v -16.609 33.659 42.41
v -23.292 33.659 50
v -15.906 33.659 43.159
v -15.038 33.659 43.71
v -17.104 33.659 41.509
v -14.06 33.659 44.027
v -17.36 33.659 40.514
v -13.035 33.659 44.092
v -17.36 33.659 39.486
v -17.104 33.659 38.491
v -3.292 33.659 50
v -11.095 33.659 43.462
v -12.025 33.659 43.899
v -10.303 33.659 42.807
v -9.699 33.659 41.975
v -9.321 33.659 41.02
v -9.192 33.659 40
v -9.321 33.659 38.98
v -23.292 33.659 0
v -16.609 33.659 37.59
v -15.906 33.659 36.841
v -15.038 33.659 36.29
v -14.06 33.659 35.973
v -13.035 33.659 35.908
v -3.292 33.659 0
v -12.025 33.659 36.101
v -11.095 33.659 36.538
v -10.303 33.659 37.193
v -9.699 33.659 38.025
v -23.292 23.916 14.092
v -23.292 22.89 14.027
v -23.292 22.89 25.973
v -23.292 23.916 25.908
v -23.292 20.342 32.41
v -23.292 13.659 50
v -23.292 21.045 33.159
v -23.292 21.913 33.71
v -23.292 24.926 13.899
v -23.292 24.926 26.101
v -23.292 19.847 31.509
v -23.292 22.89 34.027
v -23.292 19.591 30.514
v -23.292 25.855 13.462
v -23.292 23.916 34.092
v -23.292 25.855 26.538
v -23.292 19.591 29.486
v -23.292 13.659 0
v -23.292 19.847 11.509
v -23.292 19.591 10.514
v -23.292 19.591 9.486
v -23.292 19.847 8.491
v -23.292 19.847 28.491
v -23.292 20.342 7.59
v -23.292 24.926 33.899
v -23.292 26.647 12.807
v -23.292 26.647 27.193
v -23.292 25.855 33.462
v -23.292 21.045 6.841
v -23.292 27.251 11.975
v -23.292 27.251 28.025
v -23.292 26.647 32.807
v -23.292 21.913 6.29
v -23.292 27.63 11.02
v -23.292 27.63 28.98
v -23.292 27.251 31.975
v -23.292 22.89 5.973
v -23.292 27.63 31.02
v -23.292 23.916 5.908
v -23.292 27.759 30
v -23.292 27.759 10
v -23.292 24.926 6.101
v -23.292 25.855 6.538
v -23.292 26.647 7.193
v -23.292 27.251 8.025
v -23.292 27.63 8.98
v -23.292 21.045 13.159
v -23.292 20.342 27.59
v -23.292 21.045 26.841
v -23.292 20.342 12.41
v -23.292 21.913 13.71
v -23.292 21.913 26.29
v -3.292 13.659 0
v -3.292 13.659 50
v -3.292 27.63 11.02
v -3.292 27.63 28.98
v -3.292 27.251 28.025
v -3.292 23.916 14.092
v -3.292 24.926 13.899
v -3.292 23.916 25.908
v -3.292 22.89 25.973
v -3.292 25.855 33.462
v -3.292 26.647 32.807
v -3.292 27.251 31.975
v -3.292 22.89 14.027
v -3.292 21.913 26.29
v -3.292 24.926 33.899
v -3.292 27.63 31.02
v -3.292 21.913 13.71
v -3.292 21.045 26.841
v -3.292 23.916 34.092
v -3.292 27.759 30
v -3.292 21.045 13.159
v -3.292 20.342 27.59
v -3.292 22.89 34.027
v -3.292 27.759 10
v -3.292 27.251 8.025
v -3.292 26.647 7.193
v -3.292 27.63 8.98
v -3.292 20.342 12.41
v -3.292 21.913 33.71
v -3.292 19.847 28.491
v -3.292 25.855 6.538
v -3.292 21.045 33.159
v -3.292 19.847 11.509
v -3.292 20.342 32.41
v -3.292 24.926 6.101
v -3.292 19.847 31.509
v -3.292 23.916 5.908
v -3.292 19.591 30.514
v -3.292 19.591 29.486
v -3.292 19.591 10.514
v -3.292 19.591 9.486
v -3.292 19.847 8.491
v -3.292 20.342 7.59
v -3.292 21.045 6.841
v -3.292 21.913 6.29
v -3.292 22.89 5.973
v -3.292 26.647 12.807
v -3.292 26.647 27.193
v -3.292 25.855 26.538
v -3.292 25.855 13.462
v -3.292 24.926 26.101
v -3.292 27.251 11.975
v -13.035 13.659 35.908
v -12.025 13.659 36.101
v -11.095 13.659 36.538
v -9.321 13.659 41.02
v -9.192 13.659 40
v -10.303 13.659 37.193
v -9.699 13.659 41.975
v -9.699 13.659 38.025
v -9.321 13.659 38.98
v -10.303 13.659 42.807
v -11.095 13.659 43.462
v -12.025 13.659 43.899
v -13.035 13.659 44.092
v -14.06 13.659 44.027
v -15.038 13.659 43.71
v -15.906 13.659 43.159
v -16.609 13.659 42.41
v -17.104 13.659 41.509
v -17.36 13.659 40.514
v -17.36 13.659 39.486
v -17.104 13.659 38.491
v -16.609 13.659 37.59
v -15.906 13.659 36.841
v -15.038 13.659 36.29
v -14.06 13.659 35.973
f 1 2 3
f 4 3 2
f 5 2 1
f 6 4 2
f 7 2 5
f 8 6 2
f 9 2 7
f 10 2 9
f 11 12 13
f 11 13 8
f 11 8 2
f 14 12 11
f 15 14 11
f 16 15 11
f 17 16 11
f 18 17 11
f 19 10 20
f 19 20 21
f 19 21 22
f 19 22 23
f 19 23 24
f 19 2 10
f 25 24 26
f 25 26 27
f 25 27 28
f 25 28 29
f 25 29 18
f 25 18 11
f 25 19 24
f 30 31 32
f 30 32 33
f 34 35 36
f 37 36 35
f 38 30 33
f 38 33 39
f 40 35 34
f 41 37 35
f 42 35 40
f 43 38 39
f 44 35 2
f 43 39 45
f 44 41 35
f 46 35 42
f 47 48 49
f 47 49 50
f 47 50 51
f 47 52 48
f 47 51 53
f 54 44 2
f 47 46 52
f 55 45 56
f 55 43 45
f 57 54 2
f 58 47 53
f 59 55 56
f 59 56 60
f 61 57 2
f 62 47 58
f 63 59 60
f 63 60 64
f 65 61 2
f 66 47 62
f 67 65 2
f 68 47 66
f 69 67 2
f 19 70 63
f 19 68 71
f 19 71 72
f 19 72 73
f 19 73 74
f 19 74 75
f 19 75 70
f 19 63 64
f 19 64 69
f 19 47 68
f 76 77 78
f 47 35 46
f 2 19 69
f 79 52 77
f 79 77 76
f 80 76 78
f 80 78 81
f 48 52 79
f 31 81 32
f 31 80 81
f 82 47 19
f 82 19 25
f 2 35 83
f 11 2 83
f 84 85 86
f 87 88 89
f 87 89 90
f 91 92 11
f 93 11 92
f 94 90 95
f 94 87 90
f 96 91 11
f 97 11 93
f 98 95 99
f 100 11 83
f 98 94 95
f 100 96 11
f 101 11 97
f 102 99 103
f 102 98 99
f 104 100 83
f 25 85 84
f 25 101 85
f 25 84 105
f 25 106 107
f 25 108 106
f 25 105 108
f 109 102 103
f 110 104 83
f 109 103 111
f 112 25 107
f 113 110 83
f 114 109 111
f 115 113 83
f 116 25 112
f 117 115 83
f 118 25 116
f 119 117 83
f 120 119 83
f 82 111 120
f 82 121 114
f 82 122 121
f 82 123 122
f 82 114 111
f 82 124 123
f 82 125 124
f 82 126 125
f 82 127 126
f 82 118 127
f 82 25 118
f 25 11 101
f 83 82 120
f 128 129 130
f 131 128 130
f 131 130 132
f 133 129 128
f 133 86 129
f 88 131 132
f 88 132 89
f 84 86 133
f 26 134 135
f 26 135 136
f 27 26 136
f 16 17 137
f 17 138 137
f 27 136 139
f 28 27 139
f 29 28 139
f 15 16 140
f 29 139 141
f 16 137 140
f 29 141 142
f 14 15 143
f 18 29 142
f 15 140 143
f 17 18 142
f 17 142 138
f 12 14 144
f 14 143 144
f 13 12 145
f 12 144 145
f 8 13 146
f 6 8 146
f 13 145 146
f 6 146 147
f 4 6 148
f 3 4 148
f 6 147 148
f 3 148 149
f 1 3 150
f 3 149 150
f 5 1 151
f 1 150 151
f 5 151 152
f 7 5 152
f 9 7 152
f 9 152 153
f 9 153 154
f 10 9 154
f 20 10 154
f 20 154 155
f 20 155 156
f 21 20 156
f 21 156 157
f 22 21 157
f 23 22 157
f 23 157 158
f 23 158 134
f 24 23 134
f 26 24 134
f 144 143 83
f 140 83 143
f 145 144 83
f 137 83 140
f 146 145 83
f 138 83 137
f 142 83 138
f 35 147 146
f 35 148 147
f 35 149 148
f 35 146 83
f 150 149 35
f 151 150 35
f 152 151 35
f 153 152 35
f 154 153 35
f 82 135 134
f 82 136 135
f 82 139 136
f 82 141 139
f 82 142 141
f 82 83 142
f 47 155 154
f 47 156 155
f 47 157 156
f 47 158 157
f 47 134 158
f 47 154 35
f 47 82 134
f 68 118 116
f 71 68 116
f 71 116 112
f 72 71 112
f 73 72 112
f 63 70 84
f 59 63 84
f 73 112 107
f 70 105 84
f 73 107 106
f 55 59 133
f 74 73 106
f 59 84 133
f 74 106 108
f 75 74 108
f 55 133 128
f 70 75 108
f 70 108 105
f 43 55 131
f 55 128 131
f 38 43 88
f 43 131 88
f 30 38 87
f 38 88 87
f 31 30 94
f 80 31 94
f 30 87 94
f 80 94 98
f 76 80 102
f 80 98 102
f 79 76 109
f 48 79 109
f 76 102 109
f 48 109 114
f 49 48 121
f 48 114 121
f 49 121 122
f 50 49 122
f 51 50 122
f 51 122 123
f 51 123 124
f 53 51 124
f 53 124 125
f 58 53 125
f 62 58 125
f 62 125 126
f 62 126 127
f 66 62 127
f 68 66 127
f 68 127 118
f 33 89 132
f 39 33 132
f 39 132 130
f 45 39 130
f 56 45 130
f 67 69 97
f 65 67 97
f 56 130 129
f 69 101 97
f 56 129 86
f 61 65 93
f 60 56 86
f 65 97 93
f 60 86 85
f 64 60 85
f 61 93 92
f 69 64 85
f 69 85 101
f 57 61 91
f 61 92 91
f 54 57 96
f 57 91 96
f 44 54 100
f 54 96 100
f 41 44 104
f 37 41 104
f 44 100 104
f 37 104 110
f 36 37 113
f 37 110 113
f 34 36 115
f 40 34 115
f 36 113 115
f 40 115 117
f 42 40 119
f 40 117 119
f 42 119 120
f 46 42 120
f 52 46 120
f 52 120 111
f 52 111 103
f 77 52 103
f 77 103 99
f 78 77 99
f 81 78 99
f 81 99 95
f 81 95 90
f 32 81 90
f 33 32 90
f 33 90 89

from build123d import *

# Parameters (mm, degrees)
SKETCH_W        = 20
SKETCH_H        = 20
PAD_DEPTH       = 50
SKETCH001_R     = 4.1
POCKET_DEPTH    = 20
SKETCH002_R     = 4.1
POCKET001_DEPTH = 20


with BuildPart() as part:
    # Sketch → Pad (new body)
    with BuildSketch(Plane.XY):
        with Locations((-13.292078, 23.65859)):
            Rectangle(SKETCH_W, SKETCH_H)
    extrude(amount=PAD_DEPTH)

    # Sketch001 → Pocket (cut)
    with BuildSketch(Plane.YZ.offset(-3.292078)):
        with Locations((23.65859, 10)):
            Circle(SKETCH001_R)
        with Locations((23.65859, 30)):
            Circle(SKETCH001_R)
    extrude(amount=-POCKET_DEPTH, mode=Mode.SUBTRACT)

    # Sketch002 → Pocket001 (cut)
    with BuildSketch(Plane.XZ.offset(-13.65859)):
        with Locations((-13.292078, 40)):
            Circle(SKETCH002_R)
    extrude(amount=-POCKET001_DEPTH, mode=Mode.SUBTRACT)


solid = part.part
